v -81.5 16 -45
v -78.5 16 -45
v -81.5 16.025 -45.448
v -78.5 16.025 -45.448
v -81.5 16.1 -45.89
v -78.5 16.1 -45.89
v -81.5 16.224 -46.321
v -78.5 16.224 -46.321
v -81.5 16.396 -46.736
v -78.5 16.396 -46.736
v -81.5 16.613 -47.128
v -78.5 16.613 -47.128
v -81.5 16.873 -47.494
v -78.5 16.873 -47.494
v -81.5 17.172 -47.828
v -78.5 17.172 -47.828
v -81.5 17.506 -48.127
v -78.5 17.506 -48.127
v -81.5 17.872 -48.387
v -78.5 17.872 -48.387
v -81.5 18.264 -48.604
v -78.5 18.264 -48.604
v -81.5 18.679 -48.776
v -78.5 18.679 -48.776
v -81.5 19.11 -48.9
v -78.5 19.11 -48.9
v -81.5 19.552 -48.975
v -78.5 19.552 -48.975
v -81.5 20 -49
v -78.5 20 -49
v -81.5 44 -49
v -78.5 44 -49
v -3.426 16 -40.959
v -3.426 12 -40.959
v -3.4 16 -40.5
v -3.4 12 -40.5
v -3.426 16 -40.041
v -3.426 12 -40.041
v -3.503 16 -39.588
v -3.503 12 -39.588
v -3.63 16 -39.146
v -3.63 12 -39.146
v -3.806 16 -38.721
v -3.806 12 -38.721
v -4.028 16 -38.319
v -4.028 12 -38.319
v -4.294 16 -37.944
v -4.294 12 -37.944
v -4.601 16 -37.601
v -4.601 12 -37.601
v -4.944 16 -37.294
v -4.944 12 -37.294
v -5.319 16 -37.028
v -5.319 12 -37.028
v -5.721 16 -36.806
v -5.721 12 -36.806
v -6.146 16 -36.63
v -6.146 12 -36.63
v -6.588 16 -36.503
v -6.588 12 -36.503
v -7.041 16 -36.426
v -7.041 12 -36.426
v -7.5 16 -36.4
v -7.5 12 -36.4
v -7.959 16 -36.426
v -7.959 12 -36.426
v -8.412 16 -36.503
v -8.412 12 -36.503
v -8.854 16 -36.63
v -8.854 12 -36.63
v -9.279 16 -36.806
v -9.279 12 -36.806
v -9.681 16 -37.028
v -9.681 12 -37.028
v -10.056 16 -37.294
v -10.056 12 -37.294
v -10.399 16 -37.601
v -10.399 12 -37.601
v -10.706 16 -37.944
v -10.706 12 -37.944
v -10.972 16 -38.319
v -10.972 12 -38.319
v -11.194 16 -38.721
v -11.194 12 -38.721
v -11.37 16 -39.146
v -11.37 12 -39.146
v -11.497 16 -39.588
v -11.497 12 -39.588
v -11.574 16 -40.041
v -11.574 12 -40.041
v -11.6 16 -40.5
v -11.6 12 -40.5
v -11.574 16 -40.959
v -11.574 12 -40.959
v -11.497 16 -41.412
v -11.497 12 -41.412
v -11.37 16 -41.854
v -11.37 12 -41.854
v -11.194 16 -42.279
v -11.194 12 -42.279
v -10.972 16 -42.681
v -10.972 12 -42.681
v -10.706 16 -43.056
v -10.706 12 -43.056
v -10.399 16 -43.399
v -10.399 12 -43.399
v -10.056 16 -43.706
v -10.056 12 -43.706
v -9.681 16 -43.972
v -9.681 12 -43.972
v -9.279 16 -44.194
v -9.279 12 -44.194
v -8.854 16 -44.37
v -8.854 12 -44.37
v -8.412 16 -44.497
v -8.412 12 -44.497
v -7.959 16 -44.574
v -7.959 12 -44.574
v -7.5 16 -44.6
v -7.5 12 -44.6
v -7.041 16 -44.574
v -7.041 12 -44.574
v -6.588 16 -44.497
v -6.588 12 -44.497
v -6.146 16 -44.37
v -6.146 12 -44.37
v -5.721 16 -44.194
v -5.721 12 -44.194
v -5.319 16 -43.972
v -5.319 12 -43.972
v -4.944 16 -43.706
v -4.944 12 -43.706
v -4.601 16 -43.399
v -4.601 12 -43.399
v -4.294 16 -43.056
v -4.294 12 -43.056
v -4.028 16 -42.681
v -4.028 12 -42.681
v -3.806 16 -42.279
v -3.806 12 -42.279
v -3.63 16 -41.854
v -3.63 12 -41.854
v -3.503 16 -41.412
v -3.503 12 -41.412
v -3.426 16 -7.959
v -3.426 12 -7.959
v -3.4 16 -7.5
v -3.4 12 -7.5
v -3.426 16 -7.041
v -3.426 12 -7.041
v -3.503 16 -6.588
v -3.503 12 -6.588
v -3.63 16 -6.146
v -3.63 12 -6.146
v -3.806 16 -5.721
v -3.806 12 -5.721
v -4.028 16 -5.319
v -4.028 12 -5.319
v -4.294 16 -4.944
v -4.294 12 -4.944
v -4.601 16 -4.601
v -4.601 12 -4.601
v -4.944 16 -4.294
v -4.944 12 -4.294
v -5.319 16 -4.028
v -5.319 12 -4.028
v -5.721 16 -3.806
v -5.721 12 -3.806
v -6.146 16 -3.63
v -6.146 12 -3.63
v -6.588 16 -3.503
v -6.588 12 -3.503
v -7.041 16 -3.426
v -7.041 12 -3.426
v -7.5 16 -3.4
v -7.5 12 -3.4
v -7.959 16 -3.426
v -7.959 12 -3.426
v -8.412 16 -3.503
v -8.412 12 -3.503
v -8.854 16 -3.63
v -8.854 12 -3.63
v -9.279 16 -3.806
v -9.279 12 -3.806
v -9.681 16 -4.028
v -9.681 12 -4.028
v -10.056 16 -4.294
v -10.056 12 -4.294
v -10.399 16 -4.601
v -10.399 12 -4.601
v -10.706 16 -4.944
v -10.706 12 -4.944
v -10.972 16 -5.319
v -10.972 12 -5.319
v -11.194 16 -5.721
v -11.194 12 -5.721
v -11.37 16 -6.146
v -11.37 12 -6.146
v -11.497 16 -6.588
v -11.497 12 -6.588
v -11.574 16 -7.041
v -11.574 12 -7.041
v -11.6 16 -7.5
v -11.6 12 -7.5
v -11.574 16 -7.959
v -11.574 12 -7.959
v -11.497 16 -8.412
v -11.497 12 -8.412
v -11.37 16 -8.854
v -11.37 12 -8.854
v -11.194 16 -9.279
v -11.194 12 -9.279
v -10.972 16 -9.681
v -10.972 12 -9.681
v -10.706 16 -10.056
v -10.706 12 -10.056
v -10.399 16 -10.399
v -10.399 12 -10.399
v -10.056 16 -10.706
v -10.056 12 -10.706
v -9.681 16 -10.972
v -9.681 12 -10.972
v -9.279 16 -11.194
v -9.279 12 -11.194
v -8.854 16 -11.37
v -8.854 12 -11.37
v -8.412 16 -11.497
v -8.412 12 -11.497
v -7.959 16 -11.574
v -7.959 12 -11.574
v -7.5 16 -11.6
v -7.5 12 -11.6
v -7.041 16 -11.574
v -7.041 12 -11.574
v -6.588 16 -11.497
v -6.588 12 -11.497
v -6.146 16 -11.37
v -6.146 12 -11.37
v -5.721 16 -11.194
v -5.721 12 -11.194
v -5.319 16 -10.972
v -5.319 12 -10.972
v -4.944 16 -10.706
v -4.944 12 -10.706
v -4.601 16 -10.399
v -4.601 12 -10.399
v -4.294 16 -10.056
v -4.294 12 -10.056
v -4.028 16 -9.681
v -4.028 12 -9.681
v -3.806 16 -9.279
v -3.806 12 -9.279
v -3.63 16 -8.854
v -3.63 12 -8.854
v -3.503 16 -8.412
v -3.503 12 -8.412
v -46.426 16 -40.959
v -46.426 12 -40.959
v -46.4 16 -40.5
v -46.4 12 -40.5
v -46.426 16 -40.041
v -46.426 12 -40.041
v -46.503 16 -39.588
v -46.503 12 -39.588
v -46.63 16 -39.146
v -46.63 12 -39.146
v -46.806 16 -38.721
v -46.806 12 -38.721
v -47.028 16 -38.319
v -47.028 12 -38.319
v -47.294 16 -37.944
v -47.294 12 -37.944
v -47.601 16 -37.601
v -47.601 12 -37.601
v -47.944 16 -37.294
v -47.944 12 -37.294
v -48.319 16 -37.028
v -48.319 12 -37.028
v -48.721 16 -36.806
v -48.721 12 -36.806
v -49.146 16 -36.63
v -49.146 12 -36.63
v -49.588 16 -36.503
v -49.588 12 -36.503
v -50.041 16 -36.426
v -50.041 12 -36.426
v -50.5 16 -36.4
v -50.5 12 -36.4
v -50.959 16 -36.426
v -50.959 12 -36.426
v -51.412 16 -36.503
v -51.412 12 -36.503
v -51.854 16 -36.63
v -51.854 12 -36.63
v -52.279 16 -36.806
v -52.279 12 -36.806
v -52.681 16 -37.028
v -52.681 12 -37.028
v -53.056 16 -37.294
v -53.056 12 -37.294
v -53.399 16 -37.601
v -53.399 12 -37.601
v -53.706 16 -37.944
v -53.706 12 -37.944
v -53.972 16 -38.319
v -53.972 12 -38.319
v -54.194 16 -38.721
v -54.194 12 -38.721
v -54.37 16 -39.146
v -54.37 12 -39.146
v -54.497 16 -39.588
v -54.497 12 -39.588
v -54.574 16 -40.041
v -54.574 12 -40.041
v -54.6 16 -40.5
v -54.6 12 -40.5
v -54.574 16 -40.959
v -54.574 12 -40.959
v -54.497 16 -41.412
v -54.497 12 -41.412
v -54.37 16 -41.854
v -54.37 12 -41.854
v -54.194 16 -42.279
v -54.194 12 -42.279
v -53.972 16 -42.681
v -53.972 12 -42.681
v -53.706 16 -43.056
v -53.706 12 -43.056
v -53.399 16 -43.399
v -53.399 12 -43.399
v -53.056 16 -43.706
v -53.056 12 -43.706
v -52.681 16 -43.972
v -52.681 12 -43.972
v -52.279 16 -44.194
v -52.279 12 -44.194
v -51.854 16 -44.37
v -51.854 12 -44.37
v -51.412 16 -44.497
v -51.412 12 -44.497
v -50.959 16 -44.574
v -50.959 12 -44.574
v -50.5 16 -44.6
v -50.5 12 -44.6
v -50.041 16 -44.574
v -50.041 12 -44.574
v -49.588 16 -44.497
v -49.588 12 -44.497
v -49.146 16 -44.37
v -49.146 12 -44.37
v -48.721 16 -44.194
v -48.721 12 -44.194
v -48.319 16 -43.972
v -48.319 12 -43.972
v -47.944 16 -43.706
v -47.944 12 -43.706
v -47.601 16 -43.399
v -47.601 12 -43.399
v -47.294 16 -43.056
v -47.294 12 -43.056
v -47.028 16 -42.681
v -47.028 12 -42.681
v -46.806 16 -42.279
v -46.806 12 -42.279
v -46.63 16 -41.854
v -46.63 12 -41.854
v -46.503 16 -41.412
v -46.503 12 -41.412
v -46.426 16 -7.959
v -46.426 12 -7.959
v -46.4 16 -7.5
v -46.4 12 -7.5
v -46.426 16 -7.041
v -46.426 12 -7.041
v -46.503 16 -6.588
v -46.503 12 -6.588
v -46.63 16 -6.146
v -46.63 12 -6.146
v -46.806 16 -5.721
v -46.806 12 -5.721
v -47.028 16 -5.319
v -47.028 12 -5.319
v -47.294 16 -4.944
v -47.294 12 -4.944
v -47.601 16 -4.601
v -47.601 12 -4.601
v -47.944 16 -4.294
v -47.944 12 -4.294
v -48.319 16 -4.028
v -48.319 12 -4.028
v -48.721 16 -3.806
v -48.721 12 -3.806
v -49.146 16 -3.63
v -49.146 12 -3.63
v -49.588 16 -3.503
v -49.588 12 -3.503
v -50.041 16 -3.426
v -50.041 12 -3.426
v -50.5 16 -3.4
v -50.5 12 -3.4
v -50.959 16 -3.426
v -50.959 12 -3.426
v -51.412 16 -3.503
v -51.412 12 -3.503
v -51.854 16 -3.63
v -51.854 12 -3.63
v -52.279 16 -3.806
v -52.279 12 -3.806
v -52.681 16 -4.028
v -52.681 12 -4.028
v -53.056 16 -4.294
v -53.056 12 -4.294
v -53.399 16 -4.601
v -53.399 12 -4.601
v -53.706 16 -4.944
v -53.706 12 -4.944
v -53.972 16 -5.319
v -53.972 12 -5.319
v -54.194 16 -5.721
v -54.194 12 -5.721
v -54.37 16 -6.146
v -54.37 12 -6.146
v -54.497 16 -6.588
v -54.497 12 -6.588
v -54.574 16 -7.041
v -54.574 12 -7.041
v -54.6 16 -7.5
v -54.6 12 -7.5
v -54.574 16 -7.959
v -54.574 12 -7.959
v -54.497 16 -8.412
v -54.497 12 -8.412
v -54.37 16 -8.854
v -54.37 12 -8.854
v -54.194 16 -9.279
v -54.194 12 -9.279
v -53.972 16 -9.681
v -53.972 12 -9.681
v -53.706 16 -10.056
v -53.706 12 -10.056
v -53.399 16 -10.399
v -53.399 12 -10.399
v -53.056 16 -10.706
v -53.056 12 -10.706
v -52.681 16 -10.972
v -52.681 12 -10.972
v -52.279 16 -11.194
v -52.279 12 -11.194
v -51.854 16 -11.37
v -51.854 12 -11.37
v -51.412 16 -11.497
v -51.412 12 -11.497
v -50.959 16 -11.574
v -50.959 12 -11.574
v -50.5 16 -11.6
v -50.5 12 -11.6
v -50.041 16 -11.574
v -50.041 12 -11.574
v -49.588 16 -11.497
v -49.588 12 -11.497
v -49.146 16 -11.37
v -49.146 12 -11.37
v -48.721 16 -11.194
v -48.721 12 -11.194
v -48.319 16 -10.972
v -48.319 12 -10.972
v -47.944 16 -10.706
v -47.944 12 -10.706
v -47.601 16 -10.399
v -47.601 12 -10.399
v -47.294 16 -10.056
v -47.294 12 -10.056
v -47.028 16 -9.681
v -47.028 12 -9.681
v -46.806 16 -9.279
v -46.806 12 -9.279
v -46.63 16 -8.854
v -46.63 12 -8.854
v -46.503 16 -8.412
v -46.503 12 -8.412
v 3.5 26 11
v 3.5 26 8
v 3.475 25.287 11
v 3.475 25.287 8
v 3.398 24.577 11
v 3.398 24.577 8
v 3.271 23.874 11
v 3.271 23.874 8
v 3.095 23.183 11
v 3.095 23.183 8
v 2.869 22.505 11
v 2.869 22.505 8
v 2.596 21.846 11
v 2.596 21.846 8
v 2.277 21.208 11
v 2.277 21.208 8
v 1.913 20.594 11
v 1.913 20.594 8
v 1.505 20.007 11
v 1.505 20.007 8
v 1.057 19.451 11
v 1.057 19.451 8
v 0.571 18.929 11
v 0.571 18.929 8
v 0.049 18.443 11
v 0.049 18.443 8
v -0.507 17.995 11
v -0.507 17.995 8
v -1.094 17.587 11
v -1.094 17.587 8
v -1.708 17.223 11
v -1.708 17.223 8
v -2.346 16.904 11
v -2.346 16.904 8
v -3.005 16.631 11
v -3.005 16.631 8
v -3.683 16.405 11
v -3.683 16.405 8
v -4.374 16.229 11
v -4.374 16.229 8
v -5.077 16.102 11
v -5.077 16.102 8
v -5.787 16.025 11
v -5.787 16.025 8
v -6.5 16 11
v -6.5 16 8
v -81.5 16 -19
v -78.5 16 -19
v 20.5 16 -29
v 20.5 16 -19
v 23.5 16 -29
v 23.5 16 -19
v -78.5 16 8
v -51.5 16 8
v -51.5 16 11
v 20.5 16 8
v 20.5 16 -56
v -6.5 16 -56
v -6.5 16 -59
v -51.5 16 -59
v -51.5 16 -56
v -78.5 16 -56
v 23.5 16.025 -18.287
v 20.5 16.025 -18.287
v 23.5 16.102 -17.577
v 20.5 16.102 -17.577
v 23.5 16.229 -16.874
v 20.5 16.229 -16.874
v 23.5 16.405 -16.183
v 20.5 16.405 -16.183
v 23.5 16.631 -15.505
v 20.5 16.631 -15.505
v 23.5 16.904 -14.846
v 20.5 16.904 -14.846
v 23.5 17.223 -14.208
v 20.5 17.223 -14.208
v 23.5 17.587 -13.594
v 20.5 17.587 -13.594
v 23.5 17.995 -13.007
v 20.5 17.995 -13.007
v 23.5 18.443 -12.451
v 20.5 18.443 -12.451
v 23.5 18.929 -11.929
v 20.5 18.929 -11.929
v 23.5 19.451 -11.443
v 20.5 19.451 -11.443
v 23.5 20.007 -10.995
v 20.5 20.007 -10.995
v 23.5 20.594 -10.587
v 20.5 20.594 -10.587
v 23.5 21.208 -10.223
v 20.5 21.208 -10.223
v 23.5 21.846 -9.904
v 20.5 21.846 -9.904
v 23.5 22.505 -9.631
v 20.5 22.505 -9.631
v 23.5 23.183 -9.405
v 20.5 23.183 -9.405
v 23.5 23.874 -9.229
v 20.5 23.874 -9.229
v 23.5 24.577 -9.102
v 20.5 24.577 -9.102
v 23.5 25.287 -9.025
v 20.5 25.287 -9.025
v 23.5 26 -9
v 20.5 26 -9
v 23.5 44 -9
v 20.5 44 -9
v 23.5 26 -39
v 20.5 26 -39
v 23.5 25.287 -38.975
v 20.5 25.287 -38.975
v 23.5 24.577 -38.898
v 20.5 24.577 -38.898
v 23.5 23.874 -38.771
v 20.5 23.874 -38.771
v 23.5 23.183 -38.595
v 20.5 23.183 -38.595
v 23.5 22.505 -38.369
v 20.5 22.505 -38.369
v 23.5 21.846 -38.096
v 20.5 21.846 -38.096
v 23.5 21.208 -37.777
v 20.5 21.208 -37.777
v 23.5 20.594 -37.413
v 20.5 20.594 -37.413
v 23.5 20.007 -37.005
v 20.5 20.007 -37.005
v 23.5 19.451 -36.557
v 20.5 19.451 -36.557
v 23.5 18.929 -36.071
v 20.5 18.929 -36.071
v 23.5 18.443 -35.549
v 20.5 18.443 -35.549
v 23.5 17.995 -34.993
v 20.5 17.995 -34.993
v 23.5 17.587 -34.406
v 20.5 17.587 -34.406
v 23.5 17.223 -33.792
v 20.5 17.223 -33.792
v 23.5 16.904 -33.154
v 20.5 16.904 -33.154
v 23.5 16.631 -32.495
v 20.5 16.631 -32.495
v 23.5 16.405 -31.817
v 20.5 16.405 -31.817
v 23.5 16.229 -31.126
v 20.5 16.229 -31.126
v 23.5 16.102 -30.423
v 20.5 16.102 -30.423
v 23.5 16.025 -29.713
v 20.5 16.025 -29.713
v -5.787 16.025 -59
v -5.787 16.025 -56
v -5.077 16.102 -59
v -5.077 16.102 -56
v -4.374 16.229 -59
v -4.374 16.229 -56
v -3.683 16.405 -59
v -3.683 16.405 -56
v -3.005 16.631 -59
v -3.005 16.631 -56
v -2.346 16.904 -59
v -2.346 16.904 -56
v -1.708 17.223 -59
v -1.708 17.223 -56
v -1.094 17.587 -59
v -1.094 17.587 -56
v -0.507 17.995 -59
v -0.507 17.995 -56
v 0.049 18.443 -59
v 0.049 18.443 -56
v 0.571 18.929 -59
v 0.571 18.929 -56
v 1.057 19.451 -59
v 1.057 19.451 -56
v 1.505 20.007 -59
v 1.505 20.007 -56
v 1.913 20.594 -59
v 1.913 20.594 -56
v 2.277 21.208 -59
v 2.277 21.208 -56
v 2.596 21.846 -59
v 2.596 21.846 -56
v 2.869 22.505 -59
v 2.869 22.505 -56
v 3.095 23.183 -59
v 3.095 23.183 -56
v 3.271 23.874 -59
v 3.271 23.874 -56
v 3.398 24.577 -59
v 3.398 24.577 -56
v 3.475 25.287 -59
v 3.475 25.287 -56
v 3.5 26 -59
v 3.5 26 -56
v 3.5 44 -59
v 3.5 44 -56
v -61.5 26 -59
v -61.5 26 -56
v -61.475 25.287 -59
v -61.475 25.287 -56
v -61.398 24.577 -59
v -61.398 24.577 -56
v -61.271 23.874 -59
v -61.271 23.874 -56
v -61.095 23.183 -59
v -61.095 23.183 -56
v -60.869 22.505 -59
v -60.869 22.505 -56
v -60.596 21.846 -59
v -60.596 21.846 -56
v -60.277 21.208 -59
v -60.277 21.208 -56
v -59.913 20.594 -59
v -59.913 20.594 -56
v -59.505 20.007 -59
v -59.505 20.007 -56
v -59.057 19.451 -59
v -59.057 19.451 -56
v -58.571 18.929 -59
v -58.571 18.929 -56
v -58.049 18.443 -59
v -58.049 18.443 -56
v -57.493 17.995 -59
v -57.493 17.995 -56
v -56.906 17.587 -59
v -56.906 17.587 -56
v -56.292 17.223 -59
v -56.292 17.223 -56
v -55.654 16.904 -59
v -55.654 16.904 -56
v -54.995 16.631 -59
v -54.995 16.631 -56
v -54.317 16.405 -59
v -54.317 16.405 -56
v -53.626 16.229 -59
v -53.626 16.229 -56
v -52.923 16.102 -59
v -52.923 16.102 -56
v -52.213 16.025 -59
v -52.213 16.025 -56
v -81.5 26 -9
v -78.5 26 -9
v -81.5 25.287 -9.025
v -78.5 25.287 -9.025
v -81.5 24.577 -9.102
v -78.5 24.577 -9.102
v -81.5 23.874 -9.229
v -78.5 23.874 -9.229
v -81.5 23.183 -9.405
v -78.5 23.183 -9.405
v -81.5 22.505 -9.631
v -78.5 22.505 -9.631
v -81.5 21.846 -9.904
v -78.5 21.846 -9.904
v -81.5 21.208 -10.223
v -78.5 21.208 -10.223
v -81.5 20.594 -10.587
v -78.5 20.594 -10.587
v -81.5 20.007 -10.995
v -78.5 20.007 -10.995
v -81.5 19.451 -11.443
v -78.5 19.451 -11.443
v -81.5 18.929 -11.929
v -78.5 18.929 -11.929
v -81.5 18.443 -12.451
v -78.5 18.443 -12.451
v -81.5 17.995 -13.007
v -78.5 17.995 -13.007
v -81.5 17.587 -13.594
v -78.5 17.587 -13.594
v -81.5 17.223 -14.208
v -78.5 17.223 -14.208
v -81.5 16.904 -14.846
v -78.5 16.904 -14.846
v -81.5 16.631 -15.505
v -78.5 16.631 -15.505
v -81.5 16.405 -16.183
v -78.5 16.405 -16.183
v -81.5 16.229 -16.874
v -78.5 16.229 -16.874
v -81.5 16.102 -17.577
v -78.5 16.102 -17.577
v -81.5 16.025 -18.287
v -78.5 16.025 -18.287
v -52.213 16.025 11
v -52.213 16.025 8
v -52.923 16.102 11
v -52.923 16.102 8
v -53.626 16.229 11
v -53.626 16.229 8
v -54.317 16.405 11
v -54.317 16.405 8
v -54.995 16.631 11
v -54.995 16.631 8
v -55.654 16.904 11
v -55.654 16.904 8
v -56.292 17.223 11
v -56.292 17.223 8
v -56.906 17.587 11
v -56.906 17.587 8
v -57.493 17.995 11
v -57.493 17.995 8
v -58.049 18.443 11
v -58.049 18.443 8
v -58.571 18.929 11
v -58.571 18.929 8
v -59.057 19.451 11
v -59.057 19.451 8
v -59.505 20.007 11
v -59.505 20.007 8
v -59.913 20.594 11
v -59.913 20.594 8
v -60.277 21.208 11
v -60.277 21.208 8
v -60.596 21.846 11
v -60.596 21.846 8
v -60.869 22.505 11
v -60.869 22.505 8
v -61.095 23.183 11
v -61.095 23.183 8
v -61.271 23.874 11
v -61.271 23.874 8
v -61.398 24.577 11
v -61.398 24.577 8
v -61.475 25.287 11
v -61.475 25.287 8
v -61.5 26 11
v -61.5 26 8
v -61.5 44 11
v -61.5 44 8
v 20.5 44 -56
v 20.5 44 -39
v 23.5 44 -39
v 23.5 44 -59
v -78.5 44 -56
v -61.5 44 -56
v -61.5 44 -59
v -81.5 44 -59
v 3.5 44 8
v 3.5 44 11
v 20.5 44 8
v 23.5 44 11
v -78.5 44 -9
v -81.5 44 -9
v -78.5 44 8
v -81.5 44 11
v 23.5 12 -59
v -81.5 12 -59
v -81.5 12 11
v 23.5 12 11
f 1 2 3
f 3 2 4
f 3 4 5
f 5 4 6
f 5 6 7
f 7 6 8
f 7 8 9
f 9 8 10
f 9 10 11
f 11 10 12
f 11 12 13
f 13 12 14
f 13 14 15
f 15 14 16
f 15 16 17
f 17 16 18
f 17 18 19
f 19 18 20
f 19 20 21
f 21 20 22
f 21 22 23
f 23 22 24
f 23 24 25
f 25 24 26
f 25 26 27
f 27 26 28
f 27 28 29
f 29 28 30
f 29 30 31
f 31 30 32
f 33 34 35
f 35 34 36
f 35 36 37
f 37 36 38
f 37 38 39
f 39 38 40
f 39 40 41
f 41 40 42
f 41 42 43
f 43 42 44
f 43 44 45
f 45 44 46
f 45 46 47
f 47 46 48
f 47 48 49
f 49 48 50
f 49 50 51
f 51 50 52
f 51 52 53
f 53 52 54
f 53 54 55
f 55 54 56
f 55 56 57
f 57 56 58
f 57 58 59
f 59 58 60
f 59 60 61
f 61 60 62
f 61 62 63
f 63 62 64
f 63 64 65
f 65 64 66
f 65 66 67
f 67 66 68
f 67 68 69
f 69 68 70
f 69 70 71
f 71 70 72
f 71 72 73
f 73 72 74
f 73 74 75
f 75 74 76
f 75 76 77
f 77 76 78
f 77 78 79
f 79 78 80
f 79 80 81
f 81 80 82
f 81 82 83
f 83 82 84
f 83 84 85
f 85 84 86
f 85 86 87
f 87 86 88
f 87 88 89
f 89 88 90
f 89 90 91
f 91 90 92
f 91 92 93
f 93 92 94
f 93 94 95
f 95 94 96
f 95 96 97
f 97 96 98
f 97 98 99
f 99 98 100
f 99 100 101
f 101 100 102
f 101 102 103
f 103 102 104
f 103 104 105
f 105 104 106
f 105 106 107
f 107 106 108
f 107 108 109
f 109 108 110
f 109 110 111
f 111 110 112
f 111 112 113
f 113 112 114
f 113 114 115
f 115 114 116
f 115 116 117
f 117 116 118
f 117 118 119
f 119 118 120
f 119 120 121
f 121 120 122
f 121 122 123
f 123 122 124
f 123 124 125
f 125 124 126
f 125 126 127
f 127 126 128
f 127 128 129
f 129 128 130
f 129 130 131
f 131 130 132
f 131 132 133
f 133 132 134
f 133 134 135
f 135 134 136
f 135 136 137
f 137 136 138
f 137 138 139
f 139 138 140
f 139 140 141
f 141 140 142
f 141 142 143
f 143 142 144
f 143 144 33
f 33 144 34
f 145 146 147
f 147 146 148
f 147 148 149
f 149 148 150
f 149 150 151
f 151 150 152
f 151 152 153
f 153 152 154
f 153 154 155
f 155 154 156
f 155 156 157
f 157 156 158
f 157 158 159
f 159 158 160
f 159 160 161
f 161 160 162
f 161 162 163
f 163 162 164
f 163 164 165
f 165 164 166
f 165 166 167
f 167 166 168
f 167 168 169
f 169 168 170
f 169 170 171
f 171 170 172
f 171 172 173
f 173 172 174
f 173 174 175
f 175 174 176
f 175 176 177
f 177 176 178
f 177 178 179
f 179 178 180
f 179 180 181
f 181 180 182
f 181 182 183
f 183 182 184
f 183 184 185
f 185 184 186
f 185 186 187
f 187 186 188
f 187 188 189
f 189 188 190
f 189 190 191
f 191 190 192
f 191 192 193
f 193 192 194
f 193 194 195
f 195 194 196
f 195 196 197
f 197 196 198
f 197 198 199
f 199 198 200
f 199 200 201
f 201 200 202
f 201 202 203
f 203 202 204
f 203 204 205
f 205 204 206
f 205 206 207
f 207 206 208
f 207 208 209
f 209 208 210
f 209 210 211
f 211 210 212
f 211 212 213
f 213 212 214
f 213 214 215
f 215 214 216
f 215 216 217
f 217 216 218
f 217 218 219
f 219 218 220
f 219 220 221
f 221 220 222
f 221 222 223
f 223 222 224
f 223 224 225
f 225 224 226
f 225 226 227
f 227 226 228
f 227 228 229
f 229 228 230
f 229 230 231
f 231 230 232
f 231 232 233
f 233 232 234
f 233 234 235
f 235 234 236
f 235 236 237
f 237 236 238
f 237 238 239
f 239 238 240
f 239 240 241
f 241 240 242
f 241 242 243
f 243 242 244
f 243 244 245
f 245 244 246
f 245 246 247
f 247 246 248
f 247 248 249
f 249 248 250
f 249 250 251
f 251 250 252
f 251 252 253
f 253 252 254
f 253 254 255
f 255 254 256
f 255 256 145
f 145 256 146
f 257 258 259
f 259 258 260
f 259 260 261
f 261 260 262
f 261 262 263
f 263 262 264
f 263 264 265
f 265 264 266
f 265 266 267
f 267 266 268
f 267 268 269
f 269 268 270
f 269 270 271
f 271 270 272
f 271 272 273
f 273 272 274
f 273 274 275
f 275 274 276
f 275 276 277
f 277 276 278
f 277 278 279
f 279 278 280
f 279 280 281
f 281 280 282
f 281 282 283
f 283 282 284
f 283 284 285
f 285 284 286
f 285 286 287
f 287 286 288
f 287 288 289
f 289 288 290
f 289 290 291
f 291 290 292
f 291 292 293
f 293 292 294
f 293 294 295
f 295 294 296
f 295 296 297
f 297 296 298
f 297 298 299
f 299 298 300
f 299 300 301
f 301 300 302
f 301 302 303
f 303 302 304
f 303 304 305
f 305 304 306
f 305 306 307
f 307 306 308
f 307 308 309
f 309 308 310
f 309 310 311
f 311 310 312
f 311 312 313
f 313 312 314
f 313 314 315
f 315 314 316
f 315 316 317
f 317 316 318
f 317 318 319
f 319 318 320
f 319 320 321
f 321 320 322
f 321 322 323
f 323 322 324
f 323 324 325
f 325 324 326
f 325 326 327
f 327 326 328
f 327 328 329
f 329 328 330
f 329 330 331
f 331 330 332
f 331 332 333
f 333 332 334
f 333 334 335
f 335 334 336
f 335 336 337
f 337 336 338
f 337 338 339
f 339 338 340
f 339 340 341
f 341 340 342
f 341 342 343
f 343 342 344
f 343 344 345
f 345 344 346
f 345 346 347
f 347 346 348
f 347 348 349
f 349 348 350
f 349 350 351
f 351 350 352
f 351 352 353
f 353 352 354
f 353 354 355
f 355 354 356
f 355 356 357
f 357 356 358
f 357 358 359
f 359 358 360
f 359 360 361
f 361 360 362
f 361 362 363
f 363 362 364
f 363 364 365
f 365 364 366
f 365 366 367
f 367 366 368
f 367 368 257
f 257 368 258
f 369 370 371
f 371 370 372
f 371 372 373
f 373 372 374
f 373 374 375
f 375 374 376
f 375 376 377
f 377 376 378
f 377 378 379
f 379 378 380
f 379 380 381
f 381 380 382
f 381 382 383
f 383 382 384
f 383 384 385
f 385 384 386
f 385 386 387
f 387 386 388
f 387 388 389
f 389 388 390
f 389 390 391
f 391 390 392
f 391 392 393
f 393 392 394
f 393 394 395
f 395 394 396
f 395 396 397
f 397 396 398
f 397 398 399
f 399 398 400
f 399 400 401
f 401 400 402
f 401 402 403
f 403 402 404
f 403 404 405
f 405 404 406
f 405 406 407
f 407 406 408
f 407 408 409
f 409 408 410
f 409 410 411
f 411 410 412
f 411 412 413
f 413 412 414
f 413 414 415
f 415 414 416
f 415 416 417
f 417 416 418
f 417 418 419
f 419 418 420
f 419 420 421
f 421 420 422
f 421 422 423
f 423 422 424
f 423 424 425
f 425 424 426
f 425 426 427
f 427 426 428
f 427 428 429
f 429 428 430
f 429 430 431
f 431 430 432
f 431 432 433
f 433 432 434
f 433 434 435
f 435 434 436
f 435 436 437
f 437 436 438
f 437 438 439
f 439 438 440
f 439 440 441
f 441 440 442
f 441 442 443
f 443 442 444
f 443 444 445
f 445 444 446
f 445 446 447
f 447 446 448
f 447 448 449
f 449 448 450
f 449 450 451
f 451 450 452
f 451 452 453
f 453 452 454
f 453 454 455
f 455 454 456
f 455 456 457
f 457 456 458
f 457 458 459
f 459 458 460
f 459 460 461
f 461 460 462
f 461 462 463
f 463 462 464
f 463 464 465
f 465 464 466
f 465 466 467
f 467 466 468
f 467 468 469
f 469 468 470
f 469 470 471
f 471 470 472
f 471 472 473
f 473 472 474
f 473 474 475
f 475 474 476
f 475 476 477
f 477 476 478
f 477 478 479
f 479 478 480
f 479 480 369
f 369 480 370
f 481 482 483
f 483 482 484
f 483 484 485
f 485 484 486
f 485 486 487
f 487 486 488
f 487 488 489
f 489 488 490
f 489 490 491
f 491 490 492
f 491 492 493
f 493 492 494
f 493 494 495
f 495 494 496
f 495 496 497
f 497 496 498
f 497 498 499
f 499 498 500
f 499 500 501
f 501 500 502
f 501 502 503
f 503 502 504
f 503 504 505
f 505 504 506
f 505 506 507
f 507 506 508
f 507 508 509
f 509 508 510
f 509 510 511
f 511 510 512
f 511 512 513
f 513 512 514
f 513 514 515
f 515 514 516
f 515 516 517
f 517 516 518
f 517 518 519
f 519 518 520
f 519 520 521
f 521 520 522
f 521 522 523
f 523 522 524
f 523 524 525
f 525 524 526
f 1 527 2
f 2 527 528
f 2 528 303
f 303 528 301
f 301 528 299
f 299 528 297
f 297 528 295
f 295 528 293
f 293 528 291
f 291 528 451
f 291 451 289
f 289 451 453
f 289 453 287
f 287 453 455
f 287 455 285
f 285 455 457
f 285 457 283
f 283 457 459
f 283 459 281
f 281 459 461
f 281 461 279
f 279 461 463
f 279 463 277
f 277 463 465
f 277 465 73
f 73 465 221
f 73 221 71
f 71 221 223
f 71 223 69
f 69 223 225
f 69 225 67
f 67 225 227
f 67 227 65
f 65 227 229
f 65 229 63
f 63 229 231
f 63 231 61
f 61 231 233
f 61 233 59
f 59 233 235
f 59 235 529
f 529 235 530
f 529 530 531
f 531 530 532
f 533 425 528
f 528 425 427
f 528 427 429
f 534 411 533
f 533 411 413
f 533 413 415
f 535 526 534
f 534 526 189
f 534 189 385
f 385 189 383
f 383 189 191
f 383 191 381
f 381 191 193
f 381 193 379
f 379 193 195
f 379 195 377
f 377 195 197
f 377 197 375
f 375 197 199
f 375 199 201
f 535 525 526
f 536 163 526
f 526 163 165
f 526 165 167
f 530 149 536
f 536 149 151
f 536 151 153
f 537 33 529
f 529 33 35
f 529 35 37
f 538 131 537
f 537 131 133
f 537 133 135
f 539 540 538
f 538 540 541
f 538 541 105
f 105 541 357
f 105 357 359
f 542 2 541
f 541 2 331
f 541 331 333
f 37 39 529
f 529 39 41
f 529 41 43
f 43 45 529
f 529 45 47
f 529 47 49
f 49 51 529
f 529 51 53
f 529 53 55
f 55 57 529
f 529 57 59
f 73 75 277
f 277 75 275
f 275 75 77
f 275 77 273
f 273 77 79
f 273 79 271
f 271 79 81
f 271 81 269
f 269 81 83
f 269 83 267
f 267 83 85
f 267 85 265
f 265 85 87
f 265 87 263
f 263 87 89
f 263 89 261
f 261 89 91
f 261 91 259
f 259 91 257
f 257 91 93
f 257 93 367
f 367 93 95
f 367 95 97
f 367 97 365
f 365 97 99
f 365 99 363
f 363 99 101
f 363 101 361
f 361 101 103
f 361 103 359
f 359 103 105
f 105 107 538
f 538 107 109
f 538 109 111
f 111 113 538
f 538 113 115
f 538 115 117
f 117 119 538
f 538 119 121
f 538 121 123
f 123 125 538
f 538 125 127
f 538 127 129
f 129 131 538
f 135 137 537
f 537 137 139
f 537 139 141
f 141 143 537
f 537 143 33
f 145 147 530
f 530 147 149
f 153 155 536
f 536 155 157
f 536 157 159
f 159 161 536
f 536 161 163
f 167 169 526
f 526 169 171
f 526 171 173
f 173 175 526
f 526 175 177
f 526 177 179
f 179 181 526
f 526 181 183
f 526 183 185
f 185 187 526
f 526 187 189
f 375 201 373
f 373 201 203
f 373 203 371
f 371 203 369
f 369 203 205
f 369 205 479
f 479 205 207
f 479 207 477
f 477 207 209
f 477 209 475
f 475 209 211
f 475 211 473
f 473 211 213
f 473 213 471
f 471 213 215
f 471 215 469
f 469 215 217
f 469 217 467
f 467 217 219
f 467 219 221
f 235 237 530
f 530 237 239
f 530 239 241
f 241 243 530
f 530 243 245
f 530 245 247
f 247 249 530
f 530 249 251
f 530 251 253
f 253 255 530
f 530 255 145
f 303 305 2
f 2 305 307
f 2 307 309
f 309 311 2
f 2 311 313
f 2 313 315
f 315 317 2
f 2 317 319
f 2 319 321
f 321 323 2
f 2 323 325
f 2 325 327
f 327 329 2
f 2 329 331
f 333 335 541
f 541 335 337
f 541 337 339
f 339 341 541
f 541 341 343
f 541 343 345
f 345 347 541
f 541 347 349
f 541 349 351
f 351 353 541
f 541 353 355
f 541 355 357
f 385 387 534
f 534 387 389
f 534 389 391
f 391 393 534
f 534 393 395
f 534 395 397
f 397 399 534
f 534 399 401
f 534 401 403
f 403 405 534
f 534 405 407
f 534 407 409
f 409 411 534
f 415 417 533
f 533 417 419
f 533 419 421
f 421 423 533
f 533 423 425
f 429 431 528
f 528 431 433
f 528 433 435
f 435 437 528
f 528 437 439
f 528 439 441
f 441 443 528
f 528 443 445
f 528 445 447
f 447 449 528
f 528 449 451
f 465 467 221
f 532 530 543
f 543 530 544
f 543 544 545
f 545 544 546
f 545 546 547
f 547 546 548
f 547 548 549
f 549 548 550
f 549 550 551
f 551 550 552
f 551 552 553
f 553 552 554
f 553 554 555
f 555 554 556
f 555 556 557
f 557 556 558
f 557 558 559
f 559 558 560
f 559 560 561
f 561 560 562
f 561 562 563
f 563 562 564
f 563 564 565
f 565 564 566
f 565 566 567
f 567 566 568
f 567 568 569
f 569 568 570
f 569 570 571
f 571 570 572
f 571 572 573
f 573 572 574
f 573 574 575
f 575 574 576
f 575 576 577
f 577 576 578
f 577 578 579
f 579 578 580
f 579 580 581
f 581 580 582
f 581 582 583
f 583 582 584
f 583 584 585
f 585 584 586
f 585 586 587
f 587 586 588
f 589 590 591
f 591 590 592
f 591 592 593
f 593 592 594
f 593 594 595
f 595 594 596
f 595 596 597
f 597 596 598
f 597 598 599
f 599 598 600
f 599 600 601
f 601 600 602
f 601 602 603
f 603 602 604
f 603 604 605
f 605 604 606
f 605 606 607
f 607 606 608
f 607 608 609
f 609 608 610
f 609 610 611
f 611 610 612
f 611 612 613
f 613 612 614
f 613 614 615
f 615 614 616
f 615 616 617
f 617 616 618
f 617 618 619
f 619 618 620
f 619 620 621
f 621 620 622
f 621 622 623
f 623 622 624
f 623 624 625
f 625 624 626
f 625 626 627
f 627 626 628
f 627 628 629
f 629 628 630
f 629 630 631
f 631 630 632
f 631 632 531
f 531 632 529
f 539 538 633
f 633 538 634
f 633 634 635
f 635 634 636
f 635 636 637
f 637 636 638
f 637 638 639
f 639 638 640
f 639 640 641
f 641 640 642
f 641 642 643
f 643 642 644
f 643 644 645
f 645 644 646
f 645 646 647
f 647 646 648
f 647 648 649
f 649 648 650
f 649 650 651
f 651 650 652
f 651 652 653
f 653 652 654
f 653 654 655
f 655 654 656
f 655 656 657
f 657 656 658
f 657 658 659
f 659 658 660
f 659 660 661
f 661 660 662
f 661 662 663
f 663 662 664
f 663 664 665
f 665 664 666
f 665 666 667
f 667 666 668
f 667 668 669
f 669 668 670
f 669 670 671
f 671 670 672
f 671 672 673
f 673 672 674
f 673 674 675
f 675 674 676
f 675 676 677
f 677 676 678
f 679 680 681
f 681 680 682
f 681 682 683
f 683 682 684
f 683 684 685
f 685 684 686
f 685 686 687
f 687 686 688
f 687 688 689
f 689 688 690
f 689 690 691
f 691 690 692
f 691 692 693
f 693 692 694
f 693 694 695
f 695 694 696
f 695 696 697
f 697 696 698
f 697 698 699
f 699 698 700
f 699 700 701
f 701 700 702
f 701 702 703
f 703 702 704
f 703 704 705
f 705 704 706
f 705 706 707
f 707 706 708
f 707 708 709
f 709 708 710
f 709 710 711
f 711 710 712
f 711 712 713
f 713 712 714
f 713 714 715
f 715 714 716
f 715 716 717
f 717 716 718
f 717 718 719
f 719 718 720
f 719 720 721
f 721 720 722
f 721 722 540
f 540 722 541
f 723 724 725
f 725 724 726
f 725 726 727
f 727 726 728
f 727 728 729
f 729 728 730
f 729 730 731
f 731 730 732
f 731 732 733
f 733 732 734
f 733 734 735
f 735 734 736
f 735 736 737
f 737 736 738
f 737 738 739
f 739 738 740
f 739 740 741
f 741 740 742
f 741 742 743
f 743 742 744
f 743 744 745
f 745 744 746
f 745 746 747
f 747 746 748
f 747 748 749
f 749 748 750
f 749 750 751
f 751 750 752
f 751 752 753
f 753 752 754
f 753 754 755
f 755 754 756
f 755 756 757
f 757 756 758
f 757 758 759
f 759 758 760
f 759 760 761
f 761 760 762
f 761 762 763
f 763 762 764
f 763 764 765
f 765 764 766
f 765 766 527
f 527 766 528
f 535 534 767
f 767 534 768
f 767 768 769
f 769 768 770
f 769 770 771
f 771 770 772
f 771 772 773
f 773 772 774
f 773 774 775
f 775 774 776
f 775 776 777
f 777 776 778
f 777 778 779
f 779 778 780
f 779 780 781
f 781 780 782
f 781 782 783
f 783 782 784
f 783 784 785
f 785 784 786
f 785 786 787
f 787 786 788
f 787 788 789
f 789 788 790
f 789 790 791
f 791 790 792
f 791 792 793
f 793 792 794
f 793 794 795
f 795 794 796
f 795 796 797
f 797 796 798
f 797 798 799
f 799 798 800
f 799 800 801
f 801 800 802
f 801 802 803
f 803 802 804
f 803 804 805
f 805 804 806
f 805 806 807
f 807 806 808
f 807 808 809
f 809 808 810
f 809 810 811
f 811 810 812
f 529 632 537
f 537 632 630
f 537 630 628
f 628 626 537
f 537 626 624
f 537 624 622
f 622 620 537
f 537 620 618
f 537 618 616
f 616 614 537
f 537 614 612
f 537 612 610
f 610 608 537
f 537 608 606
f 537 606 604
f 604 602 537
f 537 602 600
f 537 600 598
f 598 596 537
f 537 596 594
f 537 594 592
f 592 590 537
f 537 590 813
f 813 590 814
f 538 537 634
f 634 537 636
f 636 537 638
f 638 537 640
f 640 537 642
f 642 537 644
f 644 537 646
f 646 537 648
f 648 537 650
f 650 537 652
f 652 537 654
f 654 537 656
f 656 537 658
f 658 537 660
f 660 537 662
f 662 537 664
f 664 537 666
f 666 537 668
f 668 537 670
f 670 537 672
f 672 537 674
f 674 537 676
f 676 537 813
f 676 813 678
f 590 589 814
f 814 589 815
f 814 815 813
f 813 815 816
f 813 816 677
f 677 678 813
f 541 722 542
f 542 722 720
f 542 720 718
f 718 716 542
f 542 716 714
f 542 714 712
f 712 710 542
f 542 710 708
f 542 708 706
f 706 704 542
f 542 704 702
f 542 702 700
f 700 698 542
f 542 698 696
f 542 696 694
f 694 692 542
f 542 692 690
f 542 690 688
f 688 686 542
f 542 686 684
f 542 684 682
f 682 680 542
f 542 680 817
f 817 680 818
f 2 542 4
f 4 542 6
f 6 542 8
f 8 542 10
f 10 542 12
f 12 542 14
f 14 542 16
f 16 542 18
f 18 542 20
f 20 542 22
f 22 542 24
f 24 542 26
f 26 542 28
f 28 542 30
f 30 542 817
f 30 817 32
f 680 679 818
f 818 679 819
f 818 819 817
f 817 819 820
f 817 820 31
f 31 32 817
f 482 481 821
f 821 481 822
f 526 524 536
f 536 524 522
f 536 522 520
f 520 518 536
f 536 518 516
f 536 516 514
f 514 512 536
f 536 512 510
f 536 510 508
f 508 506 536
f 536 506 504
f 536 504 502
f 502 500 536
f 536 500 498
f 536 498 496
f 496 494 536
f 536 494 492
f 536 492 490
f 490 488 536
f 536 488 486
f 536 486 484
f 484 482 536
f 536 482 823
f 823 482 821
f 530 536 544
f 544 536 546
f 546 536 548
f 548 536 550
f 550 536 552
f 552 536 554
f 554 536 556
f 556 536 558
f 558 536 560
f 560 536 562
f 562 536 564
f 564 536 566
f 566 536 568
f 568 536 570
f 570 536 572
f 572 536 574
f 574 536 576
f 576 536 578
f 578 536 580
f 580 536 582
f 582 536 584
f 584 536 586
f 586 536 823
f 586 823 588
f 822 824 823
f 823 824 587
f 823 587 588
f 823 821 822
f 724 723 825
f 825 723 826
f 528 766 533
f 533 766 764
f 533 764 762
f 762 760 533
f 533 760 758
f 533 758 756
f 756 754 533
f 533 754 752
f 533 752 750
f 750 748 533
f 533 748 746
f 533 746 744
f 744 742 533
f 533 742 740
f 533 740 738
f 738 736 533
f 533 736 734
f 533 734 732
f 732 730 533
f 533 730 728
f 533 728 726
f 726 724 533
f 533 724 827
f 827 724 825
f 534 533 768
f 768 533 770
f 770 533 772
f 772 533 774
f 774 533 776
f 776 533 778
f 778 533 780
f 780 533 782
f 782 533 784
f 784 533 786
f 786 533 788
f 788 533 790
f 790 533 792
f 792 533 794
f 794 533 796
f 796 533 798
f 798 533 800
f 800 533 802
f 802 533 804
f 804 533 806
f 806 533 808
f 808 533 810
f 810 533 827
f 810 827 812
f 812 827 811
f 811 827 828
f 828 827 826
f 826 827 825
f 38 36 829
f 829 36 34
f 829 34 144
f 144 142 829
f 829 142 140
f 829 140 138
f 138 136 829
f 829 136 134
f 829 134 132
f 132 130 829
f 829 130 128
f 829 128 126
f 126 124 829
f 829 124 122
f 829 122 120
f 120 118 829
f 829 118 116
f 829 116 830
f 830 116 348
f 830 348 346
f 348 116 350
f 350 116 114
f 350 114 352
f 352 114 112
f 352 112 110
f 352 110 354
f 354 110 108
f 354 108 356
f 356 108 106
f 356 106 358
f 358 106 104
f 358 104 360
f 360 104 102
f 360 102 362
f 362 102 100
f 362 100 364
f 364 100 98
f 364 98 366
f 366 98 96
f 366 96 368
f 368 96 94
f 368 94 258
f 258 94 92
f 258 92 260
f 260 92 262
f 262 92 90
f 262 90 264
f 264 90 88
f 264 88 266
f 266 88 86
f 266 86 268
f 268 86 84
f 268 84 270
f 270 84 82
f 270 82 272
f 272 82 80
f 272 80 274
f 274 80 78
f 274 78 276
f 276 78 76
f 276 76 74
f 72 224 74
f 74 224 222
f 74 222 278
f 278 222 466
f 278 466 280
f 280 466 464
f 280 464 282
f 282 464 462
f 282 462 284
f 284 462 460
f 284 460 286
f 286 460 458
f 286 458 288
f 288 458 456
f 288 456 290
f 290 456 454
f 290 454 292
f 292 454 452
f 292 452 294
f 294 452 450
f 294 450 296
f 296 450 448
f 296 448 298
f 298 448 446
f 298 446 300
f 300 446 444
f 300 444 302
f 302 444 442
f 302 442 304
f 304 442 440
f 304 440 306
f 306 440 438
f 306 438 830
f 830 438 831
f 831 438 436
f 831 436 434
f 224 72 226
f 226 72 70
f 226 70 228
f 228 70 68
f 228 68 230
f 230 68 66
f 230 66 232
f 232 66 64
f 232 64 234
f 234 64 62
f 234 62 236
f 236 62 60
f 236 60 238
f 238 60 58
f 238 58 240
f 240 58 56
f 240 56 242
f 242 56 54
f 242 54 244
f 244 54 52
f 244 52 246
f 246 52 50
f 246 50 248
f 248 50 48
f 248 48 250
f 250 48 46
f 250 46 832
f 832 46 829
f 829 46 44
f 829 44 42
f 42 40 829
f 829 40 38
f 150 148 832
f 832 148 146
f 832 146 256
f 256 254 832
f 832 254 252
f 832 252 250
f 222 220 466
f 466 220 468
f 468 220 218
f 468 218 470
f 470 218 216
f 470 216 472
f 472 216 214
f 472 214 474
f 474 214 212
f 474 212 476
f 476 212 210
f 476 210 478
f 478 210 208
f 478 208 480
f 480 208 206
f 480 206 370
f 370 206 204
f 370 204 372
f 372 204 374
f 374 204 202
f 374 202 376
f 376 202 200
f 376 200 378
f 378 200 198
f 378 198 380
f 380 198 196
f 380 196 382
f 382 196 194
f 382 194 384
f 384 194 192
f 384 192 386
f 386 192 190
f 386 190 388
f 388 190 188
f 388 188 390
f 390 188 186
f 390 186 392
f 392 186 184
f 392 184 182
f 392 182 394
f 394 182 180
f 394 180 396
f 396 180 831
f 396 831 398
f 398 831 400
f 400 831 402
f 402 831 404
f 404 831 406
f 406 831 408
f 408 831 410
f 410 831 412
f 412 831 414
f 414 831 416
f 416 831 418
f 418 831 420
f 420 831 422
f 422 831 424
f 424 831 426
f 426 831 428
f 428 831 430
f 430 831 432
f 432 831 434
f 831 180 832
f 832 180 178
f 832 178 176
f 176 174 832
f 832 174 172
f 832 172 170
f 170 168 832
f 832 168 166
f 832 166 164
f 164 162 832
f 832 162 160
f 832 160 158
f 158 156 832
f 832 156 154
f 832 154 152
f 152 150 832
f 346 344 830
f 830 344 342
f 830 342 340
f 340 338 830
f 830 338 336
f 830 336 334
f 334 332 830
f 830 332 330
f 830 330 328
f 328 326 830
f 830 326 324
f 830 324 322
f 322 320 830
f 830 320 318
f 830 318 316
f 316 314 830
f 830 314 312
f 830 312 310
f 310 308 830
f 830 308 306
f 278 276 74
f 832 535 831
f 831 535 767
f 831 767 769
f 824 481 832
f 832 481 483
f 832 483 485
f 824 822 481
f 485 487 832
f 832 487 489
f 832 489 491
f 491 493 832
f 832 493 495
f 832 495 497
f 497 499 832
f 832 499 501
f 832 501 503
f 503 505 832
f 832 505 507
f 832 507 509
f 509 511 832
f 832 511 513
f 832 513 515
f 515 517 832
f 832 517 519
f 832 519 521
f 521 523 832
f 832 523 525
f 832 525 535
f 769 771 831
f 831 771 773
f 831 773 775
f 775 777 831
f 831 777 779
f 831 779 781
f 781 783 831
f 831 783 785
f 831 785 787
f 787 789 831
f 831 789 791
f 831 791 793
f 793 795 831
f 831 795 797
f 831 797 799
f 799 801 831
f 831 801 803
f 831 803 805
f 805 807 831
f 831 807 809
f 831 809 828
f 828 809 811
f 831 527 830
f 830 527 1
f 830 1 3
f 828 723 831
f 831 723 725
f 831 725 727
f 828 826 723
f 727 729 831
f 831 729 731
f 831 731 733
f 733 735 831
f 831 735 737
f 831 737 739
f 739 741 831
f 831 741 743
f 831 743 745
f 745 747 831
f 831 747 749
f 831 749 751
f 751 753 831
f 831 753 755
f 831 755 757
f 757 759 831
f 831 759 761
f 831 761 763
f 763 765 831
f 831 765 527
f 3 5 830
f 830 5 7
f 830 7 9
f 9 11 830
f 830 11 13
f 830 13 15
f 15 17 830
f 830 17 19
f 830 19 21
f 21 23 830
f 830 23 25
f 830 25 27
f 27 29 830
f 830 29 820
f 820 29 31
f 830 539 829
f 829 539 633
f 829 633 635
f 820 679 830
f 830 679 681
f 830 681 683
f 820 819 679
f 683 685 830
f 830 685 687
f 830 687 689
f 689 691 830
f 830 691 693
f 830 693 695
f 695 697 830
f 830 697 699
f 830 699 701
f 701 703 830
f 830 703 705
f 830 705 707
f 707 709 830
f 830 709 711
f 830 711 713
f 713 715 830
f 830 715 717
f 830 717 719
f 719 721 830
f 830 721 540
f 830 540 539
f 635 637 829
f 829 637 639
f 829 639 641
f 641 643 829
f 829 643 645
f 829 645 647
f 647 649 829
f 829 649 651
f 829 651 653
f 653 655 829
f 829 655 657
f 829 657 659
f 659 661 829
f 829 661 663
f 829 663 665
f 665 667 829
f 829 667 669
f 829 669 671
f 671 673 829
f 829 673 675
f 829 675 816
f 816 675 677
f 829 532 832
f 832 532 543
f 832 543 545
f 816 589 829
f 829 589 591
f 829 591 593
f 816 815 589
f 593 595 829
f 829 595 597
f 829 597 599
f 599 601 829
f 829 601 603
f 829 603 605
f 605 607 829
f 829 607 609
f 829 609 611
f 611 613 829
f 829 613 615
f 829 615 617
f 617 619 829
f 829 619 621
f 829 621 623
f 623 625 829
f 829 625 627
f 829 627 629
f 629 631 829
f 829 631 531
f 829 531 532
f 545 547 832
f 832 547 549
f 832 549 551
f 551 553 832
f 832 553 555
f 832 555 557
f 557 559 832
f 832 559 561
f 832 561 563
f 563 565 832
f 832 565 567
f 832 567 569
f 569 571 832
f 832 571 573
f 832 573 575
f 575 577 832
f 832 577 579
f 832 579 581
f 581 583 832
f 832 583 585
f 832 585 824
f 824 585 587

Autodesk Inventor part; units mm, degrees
ref_plane "YZ Plane" through (0, 0, 0) normal (1, 0, 0) x (0, 1, 0)
ref_plane "XZ Plane" through (0, 0, 0) normal (0, 1, 0) x (-1, 0, 0)
ref_plane "XY Plane" through (0, 0, 0) normal (0, 0, 1) x (1, 0, 0)
sketch "Sketch1" plane through (0, 0, 0) normal (0, 1, 0) x (-1, 0, 0)
  line L0 (0, 0) -> (58, 0) construction
  line L1 (58, 0) -> (58, -48) construction
  line L2 (58, -48) -> (0, -48) construction
  line L3 (0, -48) -> (0, 0) construction
  circle A0 centre (50.5, -7.5) radius 2.35
  circle A1 centre (50.5, -40.5) radius 2.35
  circle A2 centre (7.5, -7.5) radius 2.35
  circle A3 centre (7.5, -40.5) radius 2.35
  circle A4 centre (50.5, -7.5) radius 5
  circle A5 centre (50.5, -40.5) radius 5
  circle A6 centre (7.5, -7.5) radius 5
  circle A7 centre (7.5, -40.5) radius 5
  dimension "d0" = 58
  dimension "d1" = 48
  dimension "d2" = 4.7
  dimension "d3" = 4.7
  dimension "d4" = 4.7
  dimension "d5" = 4.7
  dimension "d6" = 33
  dimension "d7" = 43
  dimension "d8" = 7.5
  dimension "d9" = 7.5
  dimension "d10" = 7.5
  dimension "d11" = 7.5
  dimension "d12" = 7.5
  dimension "d13" = 7.5
  dimension "d14" = 10
  dimension "d15" = 10
  dimension "d16" = 10
  dimension "d17" = 10
extrude "Extrusion1" add sketch "Sketch1" along normal blind 12
sketch "Sketch2" plane through (-50.5, 12, -7.5) normal (0, 1, 0) x (1, 0, 0)
  line L0 (-31, -18.5) -> (74, -18.5)
  line L1 (74, -18.5) -> (74, 51.5)
  line L2 (74, 51.5) -> (-31, 51.5)
  line L3 (-31, 51.5) -> (-31, -18.5)
  circle A0 centre (0, 0) radius 2.35 projected
  circle A1 centre (0, 33) radius 2.35 projected
  circle A2 centre (43, 33) radius 2.35 projected
  circle A3 centre (43, 0) radius 2.35 projected
  circle A4 centre (43, 0) radius 2.35
  point P0 (50.5, -7.5)
  dimension "d20" = 105
  dimension "d21" = 70
  dimension "d22" = 18.5
  dimension "d23" = 31
extrude "Extrusion3" add sketch "Sketch2" along normal blind 4
sketch "Sketch3" plane through (-50.5, 16, -7.5) normal (0, 1, 0) x (1, 0, 0)
  line L0 (-31, 51.5) -> (-31, -18.5) projected
  line L1 (-31, -18.5) -> (-31, 1.5)
  line L2 (-31, 1.5) -> (-28, 1.5)
  line L3 (-28, 1.5) -> (-28, -15.5)
  line L4 (-28, -15.5) -> (-11, -15.5)
  line L5 (-11, -15.5) -> (-11, -18.5)
  line L6 (-11, -18.5) -> (-31, -18.5)
  line L7 (-28, 48.5) -> (-11, 48.5)
  line L8 (-11, 48.5) -> (-11, 51.5)
  line L9 (74, -18.5) -> (74, 51.5) projected
  line L10 (74, 51.5) -> (54, 51.5)
  line L11 (54, 51.5) -> (54, 48.5)
  line L12 (71, 31.5) -> (74, 31.5)
  line L13 (74, 31.5) -> (74, 51.5)
  line L14 (74, -18.5) -> (74, 1.5)
  line L15 (74, 1.5) -> (71, 1.5)
  line L16 (71, 1.5) -> (71, -15.5)
  line L17 (71, -15.5) -> (54, -15.5)
  line L18 (54, -15.5) -> (54, -18.5)
  line L19 (54, -18.5) -> (74, -18.5)
  line L20 (74, 51.5) -> (-31, 51.5) projected
  line L21 (54, 48.5) -> (71, 48.5)
  line L22 (71, 48.5) -> (71, 31.5)
  line L23 (-11, 51.5) -> (-31, 51.5)
  line L24 (-31, 51.5) -> (-31, 41.5)
  line L25 (-31, 41.5) -> (-28, 41.5)
  line L26 (-28, 41.5) -> (-28, 48.5)
  point P0 (50.5, -7.5)
  dimension "d28" = 20
  dimension "d37" = 3
  dimension "d48" = 20
  dimension "d49" = 3
  dimension "d50" = 3
  dimension "d51" = 3
  dimension "d52" = 3
  dimension "d53" = 20
  dimension "d54" = 20
  dimension "d55" = 20
  dimension "d56" = 20
  dimension "d57" = 3
  dimension "d58" = 3
  dimension "d69" = 10
  dimension "d70" = 7
extrude "Extrusion4" add sketch "Sketch3" along normal blind 28
fillet "Fillet1" radius 10 7 edges at (-61.5, 16, 9.5) (-80, 16, -9) (-61.5, 16, -57.5) (3.5, 16, -57.5) (22, 16, -39) (22, 16, -9) (3.5, 16, 9.5)
sketch "Sketch4" plane through (-81.5, 12, 11) normal (0, 0, 1) x (1, 0, 0)
  line L0 (0, 0) -> (0, 32) projected
  line L1 (0, 0) -> (100, 0)
  line L2 (100, 0) -> (100, -15)
  line L3 (100, -15) -> (0, -15)
  line L4 (0, -15) -> (0, 0)
  point P0 (81.5, -12)
  dimension "d59" = 100
  dimension "d60" = 15
extrude "remove legs" cut sketch "Sketch4" against normal through all
sketch "Sketch5" plane through (-50.5, 12, -7.5) normal (0, -1, 0) x (1, 0, 0)
  circle A0 centre (0, 0) radius 2.35 projected
  circle A1 centre (0, 0) radius 4.1
  circle A2 centre (43, 0) radius 2.35 projected
  circle A3 centre (43, 0) radius 4.1
  circle A4 centre (43, -33) radius 2.35 projected
  circle A5 centre (43, -33) radius 4.1
  circle A6 centre (0, -33) radius 2.35 projected
  circle A7 centre (0, -33) radius 4.1
  circle A8 centre (0, 0) radius 2.35
  circle A9 centre (43, 0) radius 2.35
  circle A10 centre (43, -33) radius 2.35
  circle A11 centre (0, -33) radius 2.35
  point P0 (50.5, 7.5)
  dimension "d63" = 8.2
  dimension "d64" = 8.2
  dimension "d65" = 8.2
  dimension "d66" = 8.2
extrude "Extrusion6" cut sketch "Sketch5" against normal blind 4
fillet "Fillet2" radius 4 1 edges at (-80, 16, -49)
properties part number "TestingPlatform_base01"
